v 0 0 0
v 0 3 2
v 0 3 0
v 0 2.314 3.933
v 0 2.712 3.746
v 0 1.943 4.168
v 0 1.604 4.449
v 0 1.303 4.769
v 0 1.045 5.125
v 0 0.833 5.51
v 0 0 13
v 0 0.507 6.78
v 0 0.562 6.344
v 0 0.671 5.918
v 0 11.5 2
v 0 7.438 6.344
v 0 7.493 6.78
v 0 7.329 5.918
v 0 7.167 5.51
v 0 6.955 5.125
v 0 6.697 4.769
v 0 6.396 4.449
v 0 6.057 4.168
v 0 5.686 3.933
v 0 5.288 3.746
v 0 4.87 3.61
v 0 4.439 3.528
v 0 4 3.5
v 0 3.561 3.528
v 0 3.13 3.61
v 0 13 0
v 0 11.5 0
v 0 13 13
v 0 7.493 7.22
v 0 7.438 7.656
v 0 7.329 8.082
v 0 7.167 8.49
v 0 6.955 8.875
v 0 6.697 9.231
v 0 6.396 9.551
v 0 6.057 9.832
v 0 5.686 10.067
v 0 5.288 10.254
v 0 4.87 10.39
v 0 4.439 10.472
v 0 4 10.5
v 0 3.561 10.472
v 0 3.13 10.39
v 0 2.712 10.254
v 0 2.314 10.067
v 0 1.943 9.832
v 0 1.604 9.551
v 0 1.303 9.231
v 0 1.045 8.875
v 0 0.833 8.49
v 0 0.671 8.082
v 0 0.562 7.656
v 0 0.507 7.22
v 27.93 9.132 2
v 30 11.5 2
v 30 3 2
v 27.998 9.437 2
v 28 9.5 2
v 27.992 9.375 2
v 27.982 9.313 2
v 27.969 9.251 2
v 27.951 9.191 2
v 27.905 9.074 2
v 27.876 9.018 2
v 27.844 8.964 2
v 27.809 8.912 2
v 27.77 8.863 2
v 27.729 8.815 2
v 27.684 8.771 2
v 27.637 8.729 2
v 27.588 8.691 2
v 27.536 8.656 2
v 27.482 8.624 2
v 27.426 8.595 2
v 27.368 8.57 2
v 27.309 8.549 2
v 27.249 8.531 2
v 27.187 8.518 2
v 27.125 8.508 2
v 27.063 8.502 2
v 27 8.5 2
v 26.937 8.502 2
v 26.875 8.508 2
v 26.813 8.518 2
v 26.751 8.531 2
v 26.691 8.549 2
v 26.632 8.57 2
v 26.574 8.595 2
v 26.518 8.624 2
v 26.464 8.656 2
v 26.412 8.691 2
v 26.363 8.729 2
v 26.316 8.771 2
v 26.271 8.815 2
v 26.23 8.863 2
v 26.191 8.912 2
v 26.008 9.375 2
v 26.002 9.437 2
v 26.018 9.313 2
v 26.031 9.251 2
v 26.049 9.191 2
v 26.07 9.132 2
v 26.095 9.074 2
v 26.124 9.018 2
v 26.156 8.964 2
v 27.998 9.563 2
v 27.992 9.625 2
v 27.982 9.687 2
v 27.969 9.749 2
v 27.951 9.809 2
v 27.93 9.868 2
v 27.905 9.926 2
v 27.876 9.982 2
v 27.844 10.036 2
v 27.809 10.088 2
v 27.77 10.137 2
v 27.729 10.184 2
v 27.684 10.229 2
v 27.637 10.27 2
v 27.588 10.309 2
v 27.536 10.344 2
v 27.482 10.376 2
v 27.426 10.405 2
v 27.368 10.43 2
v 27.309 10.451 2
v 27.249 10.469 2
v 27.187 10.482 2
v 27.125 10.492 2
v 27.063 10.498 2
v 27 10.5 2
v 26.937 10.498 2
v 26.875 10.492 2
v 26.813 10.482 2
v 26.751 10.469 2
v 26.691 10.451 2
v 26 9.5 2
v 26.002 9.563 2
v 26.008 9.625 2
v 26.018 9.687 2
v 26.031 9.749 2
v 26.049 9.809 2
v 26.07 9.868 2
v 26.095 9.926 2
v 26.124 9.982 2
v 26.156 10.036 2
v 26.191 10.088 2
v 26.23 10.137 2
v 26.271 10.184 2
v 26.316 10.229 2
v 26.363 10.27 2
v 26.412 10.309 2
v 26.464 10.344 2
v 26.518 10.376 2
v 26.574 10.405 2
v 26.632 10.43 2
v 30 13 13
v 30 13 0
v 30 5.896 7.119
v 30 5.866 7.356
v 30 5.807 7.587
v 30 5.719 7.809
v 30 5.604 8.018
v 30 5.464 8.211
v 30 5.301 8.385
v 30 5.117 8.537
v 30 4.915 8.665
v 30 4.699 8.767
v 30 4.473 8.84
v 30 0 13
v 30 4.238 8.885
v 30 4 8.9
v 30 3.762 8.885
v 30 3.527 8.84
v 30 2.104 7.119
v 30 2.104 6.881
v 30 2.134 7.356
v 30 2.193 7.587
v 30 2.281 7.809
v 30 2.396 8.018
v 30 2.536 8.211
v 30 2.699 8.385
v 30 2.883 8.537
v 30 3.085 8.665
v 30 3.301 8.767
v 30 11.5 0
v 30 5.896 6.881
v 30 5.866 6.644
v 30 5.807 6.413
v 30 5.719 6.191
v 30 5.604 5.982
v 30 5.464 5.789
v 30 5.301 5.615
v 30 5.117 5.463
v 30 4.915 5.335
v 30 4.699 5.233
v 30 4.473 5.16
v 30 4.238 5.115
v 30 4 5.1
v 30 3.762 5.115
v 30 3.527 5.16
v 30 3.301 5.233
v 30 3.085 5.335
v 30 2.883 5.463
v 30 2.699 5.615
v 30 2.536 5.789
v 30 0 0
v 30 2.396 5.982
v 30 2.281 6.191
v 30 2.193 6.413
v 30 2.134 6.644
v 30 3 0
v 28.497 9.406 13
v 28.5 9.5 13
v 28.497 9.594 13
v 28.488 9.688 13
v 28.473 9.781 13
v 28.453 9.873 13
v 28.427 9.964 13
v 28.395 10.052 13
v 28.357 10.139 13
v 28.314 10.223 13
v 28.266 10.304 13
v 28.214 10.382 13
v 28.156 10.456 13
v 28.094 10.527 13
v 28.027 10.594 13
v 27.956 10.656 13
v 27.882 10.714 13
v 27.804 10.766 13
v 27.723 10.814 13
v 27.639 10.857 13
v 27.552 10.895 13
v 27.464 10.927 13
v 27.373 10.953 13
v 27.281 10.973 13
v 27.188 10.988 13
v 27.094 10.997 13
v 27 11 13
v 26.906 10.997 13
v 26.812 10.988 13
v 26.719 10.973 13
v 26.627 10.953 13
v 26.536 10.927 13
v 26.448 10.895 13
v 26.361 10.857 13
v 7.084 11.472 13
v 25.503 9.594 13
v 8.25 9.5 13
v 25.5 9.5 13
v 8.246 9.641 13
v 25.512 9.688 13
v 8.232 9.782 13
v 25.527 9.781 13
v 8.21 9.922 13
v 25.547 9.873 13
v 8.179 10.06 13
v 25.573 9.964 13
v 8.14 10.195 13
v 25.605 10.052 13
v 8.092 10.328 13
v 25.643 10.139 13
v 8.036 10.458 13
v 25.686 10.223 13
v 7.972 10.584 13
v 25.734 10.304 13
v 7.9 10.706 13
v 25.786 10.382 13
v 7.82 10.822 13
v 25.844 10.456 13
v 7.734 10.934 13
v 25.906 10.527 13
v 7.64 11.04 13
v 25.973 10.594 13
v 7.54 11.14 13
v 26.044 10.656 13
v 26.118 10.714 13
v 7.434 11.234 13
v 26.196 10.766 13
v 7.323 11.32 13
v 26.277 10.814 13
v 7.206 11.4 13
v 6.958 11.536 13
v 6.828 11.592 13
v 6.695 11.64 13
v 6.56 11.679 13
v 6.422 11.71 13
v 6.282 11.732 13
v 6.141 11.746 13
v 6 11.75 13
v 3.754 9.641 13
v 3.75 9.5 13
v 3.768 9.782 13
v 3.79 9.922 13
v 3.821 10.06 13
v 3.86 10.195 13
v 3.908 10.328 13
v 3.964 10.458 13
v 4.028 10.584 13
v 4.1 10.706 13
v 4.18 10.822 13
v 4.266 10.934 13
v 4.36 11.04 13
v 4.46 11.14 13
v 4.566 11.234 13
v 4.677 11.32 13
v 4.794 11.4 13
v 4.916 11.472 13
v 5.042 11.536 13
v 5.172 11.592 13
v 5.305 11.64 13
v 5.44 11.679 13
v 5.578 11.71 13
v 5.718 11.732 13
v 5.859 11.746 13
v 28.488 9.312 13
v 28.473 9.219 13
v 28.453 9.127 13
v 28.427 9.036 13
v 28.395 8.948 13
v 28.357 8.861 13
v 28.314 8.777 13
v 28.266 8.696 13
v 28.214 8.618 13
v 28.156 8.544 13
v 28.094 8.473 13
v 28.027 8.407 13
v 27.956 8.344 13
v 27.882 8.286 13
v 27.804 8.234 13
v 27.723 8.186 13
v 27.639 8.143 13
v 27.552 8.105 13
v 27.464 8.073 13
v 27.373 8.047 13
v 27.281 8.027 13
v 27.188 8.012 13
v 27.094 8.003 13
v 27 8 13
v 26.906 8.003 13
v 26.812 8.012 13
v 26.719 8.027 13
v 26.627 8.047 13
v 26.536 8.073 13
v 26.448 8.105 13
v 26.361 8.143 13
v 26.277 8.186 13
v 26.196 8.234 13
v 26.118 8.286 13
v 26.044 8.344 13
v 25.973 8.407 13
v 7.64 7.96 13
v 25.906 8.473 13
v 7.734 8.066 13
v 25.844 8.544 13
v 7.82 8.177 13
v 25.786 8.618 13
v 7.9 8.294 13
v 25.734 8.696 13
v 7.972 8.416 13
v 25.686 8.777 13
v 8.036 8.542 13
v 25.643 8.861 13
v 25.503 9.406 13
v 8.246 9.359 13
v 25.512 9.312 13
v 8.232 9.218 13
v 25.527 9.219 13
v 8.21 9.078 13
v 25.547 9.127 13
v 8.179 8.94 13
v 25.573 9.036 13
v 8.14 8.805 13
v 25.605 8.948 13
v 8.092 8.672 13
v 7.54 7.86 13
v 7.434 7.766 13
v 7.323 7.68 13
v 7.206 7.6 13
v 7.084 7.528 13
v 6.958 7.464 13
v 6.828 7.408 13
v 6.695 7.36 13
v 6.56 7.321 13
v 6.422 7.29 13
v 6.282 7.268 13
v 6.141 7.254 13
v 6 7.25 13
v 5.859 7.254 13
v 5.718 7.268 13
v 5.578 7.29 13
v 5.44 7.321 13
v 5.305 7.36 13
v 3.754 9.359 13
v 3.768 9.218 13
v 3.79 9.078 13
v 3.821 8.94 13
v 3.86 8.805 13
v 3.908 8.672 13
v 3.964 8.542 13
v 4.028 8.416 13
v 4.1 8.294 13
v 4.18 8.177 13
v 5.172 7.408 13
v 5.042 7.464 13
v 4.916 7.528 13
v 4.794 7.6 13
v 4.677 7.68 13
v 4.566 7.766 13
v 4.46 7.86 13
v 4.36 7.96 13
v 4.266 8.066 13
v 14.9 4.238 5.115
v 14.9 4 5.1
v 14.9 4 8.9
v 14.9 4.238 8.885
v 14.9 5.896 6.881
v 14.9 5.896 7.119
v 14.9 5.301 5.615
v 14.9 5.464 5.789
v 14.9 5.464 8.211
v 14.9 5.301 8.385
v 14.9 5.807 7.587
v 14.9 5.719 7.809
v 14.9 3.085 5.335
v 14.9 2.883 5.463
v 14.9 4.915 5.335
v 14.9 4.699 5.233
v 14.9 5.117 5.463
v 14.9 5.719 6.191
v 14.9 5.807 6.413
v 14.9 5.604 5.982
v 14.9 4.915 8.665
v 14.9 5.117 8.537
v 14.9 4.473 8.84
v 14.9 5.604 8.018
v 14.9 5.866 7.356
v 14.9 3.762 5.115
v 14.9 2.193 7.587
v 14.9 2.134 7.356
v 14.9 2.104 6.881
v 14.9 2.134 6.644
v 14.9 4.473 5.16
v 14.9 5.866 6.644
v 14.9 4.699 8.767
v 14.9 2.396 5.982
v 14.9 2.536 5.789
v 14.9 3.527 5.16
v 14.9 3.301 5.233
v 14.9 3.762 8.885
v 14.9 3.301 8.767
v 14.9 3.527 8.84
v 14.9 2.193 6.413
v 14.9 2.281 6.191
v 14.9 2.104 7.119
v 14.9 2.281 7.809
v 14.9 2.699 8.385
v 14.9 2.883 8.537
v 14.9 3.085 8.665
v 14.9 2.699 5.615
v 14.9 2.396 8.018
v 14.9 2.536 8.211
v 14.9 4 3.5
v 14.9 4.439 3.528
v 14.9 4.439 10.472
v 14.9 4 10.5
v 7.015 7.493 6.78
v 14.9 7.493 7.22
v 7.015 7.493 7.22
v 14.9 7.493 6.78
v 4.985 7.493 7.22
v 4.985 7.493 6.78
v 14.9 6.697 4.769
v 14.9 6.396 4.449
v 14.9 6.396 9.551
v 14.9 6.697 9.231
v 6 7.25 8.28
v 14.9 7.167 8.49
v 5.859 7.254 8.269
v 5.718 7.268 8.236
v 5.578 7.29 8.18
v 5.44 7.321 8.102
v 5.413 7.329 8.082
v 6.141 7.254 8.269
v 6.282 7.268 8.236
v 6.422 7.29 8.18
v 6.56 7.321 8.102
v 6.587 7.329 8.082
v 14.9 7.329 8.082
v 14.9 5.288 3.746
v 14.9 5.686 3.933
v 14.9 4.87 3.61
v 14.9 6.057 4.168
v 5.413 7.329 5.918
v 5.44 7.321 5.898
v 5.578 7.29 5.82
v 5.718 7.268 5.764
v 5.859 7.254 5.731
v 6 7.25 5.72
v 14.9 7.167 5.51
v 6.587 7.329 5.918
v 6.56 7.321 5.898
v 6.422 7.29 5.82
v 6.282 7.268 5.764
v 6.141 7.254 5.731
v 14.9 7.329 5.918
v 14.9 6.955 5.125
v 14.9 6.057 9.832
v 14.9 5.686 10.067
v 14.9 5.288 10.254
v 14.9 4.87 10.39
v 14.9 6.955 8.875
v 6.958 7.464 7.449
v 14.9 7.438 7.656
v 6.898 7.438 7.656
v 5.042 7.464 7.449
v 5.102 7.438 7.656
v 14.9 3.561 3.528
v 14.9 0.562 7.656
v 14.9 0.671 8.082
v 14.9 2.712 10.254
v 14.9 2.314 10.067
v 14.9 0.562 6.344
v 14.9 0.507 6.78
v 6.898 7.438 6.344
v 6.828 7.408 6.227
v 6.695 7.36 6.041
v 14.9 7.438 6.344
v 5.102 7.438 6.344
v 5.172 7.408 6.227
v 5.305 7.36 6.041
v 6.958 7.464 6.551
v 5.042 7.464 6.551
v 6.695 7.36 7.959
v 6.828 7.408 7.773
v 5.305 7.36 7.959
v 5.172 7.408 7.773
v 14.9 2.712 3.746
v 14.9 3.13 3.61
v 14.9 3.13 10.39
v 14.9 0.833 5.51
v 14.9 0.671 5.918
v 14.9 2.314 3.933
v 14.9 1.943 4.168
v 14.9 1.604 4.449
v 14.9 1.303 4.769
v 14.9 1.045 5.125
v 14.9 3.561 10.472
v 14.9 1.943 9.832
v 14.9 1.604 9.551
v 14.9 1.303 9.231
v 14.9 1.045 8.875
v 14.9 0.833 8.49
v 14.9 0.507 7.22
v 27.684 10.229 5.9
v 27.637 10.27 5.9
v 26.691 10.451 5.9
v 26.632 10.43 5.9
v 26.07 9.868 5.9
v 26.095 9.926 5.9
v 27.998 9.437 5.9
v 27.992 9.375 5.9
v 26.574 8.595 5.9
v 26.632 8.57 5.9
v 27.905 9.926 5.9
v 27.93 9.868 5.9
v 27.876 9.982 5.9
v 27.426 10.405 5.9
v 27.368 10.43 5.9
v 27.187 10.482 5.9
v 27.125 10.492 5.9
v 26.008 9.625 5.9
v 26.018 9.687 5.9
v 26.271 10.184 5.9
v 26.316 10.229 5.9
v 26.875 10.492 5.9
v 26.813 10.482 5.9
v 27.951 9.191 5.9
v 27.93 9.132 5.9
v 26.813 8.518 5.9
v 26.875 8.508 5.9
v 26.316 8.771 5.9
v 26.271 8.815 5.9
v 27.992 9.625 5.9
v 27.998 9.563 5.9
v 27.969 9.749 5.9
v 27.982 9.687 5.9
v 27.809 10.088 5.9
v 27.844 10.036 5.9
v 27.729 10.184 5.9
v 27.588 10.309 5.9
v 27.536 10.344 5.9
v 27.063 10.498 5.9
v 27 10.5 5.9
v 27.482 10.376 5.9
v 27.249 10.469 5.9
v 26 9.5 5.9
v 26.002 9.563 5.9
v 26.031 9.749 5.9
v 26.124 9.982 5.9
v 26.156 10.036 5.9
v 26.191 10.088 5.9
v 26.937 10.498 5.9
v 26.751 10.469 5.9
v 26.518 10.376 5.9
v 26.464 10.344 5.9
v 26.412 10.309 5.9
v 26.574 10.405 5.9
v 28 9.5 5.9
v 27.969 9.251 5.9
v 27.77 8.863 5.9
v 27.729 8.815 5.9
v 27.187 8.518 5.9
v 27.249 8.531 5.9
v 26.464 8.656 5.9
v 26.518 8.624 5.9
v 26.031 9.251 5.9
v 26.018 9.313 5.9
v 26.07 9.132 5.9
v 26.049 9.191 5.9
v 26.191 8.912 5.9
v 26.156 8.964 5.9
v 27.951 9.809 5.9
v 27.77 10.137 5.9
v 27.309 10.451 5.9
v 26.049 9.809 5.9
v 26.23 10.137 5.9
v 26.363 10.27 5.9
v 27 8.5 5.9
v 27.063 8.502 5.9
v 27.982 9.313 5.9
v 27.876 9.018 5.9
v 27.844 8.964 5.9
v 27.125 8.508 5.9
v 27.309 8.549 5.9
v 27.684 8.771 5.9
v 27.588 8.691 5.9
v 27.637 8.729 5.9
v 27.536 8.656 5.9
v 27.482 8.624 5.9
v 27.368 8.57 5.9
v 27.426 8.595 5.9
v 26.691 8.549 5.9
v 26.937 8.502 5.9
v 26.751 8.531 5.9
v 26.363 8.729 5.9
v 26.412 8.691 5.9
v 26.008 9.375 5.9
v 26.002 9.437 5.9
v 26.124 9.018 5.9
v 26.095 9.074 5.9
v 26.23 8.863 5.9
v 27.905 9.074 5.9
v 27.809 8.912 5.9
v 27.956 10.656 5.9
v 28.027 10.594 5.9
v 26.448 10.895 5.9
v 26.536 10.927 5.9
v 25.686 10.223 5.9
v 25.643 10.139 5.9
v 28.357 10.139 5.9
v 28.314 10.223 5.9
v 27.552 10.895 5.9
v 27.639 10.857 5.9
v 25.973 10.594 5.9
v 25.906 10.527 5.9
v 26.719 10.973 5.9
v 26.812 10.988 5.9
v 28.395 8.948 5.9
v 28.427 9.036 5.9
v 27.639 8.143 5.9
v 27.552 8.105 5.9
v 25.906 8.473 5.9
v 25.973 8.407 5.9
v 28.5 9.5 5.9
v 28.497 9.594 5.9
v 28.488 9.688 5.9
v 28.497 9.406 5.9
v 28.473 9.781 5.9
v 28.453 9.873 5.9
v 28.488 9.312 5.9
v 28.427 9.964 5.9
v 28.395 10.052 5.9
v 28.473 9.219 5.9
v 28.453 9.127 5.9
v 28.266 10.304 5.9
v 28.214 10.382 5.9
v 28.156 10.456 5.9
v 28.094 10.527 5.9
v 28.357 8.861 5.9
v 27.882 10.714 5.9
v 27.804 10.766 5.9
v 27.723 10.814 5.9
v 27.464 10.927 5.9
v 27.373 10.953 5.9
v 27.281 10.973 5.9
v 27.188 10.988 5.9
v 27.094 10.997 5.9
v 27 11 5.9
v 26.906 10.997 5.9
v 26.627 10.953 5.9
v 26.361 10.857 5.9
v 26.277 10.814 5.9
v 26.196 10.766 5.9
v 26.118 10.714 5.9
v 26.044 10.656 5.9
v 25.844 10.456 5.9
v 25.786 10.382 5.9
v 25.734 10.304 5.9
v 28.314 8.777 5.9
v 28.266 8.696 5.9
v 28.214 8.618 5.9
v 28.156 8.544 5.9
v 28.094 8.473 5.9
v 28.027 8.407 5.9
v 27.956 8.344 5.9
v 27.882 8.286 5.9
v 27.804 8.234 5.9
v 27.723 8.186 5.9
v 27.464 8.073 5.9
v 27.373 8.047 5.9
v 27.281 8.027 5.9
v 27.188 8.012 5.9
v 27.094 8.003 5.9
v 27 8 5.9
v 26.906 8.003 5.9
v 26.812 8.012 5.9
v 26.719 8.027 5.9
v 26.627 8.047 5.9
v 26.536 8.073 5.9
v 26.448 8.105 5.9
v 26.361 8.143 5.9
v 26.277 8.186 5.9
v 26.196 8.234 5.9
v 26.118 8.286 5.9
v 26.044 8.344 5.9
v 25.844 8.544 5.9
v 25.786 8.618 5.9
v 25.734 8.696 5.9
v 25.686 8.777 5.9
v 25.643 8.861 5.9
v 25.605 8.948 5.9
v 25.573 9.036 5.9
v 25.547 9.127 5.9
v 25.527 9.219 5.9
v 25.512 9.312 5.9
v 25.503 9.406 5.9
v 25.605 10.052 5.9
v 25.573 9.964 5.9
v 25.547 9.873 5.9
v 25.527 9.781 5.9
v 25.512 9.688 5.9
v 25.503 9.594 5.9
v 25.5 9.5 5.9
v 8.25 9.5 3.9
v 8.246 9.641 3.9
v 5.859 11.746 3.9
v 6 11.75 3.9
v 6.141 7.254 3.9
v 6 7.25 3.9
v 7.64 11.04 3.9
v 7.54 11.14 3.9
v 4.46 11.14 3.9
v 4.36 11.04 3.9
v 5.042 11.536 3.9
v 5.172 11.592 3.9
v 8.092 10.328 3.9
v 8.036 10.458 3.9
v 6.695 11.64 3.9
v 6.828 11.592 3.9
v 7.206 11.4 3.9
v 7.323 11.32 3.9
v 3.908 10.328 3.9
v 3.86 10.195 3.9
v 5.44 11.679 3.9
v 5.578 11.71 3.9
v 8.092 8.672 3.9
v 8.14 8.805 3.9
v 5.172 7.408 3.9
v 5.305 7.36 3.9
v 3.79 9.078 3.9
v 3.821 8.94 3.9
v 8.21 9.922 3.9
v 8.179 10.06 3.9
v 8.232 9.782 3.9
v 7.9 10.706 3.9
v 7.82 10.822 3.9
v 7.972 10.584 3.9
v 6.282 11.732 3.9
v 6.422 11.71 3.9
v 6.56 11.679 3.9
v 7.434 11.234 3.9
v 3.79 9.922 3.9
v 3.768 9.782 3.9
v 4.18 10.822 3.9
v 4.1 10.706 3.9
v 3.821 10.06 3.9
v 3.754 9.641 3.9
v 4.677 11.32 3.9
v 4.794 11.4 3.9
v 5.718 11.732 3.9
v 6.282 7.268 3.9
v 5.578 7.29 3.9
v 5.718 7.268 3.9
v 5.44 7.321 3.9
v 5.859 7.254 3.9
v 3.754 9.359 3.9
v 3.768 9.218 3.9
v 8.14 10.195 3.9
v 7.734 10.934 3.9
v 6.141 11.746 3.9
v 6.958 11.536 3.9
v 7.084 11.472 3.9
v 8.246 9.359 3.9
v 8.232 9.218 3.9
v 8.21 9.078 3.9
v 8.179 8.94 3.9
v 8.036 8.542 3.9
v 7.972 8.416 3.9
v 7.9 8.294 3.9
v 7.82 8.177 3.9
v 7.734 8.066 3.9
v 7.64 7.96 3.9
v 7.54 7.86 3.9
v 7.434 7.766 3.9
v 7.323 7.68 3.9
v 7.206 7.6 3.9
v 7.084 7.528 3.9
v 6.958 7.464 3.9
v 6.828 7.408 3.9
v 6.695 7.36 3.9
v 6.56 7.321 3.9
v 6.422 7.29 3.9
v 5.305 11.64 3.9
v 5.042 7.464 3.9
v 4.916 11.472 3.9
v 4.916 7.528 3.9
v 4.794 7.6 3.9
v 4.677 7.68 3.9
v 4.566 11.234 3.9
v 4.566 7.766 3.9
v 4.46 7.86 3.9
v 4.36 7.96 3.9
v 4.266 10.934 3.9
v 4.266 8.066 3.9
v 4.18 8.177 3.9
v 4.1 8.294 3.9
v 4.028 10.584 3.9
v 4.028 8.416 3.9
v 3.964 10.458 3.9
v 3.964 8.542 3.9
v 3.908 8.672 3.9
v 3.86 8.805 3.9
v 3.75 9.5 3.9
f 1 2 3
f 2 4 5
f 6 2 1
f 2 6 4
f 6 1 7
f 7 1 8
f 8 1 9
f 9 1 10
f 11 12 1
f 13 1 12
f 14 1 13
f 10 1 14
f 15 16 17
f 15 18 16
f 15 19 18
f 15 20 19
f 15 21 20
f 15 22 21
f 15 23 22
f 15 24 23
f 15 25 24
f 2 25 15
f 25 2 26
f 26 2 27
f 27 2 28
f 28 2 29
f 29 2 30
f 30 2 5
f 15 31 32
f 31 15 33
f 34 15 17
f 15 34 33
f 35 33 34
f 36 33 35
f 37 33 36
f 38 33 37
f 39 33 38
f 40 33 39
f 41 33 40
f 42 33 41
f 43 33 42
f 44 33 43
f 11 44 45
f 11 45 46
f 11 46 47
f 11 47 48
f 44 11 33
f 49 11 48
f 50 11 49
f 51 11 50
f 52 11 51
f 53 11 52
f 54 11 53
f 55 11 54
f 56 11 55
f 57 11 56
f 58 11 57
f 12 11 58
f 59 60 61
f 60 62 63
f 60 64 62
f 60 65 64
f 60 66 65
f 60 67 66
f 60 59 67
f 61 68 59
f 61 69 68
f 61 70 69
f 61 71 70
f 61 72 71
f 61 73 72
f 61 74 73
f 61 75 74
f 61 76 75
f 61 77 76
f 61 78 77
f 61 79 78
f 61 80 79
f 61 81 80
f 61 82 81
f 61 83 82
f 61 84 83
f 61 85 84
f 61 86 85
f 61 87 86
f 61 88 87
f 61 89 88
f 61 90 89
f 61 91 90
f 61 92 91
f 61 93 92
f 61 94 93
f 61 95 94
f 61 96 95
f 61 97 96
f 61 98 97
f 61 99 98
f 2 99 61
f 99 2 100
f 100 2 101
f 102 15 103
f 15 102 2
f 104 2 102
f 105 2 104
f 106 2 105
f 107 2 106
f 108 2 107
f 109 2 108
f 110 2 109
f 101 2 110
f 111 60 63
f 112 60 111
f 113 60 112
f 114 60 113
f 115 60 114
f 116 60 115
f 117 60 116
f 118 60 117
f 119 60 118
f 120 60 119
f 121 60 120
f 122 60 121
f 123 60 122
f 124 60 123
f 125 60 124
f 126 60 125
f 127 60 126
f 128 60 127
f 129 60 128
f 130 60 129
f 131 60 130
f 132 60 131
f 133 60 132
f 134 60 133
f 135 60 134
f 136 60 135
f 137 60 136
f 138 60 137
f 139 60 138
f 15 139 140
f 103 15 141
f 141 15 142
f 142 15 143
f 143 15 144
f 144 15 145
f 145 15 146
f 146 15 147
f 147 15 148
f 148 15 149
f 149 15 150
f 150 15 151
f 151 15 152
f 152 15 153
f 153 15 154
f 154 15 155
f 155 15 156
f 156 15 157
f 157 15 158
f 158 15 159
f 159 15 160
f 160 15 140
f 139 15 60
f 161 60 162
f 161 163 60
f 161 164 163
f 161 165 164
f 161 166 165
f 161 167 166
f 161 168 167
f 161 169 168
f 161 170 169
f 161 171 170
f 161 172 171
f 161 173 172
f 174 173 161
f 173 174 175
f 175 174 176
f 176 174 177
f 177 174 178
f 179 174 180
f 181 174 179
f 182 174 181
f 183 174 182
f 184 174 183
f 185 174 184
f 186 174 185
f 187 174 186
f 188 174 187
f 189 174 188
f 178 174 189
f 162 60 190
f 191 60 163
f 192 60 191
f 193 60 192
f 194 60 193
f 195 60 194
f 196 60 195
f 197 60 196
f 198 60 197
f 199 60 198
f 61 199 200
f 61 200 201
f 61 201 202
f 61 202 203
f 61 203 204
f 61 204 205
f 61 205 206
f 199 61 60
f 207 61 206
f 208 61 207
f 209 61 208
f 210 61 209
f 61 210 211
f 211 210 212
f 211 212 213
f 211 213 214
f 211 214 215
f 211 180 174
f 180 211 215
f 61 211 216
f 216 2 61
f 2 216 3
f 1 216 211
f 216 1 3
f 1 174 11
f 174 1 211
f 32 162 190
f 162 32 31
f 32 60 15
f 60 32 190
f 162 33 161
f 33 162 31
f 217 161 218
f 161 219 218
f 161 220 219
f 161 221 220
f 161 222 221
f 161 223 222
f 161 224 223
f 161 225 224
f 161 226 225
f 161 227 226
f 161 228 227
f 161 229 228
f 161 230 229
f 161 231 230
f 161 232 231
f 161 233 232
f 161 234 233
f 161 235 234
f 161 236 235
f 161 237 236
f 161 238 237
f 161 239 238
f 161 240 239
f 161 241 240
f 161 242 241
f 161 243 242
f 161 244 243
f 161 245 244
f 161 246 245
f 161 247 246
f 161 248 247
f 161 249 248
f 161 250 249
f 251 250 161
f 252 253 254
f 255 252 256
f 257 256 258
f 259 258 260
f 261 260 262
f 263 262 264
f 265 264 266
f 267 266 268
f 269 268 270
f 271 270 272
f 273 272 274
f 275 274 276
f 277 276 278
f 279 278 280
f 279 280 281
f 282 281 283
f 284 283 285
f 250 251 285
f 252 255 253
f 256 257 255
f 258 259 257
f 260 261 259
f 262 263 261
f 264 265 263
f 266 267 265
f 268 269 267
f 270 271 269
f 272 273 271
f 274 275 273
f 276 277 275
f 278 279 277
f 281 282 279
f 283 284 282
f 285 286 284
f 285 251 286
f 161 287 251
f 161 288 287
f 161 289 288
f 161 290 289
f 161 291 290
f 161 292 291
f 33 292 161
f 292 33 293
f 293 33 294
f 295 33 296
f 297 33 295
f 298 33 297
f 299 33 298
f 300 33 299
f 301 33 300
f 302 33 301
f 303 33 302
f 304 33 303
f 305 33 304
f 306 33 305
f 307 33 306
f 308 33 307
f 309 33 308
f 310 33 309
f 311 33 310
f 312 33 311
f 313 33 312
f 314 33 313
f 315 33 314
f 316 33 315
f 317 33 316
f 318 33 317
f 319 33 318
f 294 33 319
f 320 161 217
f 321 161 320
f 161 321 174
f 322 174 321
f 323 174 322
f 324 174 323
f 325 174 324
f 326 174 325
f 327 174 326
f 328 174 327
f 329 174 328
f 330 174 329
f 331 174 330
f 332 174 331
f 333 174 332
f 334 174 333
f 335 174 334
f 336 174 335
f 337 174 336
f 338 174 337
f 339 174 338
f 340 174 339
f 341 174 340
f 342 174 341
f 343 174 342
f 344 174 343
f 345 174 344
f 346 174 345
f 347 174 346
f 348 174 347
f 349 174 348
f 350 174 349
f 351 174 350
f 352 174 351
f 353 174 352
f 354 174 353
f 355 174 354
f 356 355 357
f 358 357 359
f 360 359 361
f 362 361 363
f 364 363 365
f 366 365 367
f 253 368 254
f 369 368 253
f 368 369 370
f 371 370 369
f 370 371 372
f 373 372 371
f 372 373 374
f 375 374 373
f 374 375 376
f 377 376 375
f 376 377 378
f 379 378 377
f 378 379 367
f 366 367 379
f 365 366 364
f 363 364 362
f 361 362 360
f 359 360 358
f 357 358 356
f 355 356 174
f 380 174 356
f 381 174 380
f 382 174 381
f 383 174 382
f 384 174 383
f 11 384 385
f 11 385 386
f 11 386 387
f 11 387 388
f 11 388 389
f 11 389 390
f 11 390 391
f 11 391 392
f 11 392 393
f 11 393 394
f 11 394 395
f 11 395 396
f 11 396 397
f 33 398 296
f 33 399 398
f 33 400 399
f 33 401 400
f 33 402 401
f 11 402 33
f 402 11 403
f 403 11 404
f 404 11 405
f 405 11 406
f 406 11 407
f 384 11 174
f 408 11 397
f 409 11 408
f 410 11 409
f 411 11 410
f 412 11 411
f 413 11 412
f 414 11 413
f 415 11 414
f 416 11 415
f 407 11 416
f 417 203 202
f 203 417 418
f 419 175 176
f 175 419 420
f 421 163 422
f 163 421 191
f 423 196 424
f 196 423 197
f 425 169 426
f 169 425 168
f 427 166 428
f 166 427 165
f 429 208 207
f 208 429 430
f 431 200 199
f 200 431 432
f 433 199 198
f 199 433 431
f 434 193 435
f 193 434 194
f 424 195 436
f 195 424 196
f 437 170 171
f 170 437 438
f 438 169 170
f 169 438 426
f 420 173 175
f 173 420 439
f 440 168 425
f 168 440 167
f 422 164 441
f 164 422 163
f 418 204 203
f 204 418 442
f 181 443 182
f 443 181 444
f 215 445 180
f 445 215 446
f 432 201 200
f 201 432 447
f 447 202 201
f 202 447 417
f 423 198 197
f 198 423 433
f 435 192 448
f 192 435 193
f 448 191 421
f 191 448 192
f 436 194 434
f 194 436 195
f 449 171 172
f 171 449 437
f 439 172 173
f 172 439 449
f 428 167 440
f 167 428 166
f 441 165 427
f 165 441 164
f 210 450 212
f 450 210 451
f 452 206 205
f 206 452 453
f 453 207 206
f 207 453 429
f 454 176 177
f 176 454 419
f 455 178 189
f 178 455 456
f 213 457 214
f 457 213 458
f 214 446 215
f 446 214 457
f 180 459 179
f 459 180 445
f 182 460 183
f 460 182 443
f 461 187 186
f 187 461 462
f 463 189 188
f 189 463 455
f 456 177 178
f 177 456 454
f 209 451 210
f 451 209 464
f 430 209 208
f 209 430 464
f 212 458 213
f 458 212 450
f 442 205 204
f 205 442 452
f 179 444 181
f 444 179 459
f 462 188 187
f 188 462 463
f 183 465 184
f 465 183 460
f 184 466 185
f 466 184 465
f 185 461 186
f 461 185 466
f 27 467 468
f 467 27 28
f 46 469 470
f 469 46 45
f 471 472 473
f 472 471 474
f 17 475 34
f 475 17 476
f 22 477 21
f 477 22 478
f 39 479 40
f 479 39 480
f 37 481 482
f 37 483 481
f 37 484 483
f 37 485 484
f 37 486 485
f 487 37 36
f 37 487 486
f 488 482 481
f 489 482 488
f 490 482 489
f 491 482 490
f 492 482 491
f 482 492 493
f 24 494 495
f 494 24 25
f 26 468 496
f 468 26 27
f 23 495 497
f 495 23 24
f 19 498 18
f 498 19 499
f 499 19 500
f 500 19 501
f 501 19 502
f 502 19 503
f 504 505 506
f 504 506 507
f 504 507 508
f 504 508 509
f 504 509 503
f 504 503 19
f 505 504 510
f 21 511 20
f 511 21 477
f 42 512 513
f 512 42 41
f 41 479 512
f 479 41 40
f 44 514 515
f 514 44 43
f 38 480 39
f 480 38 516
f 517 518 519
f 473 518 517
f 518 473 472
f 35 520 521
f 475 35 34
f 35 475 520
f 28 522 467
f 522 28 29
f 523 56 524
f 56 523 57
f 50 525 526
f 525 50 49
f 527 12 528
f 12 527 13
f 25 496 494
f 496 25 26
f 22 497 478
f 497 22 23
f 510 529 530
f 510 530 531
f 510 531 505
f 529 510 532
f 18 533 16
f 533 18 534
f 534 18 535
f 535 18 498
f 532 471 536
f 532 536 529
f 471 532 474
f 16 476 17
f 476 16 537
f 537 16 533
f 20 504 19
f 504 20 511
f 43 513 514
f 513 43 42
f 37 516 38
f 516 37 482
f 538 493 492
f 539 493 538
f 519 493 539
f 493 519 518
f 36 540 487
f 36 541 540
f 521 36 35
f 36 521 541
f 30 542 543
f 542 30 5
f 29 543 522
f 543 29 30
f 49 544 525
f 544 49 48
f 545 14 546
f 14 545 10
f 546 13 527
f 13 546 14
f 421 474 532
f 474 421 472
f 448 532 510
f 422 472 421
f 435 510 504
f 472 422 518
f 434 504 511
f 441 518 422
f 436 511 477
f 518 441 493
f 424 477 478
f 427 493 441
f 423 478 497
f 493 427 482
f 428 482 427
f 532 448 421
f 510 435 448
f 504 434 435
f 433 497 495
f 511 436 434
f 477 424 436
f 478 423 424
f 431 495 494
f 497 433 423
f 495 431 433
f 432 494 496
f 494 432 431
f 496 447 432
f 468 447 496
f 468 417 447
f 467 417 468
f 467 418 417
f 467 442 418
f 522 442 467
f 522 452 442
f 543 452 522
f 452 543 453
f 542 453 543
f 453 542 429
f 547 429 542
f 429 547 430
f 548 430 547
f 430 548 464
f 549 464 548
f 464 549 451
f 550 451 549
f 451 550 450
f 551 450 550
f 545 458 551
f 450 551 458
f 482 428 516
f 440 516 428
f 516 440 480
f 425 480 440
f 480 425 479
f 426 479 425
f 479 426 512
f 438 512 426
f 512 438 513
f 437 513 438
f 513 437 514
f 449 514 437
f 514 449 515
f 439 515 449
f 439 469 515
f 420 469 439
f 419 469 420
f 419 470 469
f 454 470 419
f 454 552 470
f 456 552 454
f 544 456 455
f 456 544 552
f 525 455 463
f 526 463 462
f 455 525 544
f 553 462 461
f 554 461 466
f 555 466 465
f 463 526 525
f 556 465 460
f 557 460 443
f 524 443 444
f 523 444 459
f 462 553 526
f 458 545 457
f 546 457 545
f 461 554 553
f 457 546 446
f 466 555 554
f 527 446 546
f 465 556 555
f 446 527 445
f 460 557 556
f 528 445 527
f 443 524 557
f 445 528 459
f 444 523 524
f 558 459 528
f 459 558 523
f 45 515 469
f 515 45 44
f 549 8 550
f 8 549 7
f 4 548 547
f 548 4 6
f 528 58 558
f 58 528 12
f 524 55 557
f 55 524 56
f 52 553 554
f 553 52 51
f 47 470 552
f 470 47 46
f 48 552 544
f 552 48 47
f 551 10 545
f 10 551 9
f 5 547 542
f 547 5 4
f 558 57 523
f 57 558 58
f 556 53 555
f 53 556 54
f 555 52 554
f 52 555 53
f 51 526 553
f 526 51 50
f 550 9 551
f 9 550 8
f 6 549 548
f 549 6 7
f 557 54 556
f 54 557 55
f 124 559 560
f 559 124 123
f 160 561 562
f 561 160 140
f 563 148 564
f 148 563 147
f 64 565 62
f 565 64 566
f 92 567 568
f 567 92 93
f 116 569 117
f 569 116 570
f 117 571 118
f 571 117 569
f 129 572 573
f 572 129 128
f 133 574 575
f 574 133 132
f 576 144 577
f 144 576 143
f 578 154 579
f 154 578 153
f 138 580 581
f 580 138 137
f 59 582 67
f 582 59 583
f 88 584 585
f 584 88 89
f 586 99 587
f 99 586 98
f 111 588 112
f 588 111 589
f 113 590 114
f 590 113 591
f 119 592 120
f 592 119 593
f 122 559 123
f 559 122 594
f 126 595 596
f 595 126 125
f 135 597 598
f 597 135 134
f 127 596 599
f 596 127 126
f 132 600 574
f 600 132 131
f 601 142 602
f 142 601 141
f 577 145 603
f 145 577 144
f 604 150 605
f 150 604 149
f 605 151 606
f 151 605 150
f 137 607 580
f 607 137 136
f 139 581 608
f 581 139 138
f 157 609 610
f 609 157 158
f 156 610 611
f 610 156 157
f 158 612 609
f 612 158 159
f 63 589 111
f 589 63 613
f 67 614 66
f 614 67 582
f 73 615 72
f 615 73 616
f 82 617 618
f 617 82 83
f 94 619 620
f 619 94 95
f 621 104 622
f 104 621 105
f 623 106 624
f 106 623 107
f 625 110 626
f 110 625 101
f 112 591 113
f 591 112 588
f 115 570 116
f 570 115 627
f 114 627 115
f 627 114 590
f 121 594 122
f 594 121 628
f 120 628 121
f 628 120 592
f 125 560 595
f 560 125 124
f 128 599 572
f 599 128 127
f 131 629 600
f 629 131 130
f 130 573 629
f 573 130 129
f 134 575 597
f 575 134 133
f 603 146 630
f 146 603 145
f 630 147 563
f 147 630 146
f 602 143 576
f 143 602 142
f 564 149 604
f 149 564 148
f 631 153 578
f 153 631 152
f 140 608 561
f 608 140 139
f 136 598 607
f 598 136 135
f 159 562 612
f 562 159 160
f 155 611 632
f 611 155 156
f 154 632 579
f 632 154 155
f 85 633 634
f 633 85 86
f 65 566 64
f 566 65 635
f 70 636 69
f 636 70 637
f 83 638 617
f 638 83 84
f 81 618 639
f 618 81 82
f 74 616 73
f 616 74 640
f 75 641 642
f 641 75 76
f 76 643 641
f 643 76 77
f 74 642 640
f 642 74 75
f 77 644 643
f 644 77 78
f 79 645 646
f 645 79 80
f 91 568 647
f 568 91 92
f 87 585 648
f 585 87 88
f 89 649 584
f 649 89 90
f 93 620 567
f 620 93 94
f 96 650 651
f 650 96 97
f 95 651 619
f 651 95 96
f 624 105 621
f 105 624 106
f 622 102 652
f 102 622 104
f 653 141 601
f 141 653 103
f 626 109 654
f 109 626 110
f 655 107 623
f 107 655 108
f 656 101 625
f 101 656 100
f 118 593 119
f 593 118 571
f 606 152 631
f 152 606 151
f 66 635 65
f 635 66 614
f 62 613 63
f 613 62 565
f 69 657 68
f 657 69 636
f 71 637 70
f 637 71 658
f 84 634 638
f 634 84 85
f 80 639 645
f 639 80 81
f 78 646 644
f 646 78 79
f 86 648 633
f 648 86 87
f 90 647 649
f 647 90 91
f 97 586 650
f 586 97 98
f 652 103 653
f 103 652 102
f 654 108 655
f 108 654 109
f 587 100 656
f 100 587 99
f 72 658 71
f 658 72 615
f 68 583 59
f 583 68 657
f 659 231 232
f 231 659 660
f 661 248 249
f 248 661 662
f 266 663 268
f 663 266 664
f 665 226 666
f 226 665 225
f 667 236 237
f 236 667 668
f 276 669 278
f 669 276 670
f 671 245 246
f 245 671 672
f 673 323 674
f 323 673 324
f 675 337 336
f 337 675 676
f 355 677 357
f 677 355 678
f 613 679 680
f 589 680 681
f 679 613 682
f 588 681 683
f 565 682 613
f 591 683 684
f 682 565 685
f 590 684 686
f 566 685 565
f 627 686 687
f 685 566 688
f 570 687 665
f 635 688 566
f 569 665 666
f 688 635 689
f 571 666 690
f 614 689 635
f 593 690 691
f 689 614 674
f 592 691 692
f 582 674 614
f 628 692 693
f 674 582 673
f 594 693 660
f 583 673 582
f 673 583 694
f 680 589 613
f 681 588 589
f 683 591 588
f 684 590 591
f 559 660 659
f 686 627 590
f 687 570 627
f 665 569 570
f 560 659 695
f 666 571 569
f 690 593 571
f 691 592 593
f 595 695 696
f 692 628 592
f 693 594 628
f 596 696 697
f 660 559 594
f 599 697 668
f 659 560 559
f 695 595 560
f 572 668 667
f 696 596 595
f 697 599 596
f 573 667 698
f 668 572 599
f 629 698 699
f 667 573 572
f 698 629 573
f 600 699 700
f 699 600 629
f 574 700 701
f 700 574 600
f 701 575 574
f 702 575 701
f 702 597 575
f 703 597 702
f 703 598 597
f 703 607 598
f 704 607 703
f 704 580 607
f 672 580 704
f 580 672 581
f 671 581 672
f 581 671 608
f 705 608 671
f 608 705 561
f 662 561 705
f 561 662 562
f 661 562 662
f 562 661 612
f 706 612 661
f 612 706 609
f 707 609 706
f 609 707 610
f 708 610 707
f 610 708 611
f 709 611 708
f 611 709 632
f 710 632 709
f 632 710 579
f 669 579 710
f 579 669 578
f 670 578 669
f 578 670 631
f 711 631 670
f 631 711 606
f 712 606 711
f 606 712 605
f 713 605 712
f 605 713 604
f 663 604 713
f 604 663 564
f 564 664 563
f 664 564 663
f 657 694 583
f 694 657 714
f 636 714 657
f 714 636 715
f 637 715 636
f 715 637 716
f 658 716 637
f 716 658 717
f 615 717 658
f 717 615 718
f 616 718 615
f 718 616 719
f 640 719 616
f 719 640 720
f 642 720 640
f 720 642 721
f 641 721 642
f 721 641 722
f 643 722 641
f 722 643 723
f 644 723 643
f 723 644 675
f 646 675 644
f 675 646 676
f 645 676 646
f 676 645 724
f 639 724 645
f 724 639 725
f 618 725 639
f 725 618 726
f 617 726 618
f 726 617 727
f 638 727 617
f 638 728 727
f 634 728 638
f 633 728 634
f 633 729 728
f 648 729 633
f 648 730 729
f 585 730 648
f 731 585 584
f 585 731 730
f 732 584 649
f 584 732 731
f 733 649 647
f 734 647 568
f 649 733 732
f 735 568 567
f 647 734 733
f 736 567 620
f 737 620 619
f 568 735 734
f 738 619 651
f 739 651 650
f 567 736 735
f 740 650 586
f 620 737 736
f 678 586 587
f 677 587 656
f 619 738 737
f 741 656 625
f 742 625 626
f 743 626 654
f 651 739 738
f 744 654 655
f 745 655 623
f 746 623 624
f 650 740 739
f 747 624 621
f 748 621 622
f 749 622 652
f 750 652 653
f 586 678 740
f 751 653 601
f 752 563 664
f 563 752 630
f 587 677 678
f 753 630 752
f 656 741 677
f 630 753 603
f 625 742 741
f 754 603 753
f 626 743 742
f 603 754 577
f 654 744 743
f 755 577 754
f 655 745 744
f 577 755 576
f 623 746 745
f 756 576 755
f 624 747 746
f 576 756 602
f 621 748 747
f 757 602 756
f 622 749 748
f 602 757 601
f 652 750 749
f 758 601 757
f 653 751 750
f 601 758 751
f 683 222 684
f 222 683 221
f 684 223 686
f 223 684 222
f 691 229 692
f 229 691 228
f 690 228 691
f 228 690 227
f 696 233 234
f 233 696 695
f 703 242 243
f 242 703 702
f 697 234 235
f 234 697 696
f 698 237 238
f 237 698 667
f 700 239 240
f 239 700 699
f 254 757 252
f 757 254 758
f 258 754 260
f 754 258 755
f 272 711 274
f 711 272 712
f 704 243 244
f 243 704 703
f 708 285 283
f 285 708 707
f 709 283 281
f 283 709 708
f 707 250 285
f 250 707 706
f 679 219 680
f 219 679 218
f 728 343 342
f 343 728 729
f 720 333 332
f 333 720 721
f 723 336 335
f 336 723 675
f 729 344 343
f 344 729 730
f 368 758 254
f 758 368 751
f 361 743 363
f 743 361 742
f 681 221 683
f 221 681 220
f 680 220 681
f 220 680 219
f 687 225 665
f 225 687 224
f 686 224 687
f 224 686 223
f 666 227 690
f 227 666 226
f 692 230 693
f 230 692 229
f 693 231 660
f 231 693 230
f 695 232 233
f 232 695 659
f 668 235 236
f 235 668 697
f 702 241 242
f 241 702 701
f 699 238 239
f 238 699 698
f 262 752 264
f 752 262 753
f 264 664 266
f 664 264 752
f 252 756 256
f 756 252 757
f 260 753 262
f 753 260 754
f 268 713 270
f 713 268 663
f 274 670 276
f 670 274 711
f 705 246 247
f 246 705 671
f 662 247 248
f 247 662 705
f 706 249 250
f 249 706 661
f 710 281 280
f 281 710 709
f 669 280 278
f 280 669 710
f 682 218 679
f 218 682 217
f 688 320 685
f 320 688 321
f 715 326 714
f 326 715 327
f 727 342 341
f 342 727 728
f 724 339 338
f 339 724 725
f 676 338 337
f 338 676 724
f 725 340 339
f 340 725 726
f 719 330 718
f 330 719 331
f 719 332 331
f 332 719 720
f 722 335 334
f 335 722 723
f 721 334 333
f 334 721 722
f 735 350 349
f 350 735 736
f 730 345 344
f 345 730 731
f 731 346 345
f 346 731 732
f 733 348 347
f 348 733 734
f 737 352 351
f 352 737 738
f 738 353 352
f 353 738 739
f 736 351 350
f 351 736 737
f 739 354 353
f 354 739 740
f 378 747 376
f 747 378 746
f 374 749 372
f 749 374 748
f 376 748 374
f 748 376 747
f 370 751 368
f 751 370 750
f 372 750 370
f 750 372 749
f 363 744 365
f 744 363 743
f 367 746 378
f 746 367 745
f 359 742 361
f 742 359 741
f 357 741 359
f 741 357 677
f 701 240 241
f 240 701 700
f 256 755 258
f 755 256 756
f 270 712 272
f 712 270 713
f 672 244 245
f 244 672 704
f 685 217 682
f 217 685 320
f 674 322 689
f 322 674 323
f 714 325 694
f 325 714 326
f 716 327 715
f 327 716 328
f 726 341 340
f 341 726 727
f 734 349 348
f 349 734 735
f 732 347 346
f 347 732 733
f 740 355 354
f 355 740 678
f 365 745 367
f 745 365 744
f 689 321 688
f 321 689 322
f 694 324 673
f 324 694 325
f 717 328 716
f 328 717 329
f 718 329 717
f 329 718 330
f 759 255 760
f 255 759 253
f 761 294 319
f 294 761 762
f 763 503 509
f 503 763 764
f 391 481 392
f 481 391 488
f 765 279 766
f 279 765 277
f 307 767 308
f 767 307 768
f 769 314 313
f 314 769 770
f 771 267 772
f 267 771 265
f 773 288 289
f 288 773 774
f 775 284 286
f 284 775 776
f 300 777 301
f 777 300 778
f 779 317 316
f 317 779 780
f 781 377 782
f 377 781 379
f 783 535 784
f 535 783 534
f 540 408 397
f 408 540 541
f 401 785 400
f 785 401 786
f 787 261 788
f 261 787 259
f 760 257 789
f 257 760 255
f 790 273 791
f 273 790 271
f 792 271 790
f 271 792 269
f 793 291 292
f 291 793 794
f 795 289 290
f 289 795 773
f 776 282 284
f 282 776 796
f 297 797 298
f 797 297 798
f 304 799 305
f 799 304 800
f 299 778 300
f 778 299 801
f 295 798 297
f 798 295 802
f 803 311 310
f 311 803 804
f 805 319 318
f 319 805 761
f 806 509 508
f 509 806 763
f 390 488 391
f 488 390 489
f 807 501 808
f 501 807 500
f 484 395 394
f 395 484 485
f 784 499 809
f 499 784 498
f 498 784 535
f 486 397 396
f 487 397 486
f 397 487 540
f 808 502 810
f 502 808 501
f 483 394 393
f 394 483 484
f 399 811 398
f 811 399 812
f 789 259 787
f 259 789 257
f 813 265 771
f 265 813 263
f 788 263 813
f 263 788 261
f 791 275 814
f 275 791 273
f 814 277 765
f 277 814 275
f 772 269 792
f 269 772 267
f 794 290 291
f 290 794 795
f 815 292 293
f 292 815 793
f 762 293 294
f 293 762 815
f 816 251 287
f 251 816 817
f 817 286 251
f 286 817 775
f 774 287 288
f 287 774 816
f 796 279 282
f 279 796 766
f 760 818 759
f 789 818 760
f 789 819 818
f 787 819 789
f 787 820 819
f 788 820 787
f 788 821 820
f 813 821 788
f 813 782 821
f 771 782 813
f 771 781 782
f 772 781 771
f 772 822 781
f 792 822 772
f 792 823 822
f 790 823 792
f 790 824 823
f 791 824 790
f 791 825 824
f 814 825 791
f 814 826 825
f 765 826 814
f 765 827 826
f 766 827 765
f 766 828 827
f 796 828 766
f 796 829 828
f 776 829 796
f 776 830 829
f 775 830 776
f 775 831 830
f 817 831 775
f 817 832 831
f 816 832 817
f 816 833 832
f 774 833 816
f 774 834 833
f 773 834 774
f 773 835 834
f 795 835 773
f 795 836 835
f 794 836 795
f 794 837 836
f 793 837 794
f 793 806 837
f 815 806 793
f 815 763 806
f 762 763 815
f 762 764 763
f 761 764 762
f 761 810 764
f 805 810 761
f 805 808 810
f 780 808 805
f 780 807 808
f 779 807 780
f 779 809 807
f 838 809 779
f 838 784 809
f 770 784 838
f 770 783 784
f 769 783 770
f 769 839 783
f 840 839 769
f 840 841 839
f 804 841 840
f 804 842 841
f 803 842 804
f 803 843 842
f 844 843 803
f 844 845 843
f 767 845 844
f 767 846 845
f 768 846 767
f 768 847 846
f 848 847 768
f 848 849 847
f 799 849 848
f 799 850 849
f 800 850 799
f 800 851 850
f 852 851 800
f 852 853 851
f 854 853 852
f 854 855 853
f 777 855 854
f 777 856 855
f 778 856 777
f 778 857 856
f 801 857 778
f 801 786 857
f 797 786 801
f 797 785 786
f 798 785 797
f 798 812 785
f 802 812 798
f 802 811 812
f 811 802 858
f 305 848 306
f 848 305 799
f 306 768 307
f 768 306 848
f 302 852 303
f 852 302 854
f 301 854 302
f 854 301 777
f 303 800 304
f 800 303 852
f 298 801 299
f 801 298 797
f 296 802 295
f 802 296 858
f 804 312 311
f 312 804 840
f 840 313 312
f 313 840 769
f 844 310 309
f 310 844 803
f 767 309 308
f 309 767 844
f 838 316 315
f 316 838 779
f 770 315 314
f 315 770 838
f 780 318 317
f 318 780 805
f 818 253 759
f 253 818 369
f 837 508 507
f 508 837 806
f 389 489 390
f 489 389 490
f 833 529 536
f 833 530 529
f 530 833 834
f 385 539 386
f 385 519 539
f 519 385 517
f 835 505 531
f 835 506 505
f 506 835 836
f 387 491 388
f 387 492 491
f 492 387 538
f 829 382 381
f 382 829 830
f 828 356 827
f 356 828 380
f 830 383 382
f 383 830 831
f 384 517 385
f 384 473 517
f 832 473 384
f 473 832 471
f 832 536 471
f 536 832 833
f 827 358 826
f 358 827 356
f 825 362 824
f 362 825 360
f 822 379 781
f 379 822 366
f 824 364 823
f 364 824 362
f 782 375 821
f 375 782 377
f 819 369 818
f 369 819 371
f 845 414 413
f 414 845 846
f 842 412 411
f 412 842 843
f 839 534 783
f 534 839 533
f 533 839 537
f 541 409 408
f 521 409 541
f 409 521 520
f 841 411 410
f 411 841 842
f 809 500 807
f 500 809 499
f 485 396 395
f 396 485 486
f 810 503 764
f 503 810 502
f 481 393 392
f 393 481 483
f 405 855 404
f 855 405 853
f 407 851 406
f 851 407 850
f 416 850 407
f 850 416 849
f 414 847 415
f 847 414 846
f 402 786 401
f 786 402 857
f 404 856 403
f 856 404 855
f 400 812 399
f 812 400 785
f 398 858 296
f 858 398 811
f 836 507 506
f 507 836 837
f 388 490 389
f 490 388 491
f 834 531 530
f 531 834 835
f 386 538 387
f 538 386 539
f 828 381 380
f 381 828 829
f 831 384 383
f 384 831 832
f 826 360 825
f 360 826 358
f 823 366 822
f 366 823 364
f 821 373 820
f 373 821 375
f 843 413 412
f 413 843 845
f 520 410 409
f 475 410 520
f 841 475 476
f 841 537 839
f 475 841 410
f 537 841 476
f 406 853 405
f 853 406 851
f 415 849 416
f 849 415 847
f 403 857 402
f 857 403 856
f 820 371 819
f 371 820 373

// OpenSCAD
$fn = 100;

// Height between base and wrapper.
smdTapeGap = 2;
// gap for the film to wrap back around
smtTapeTopGap = 1; 
// How far from the edige the hole in the tap is.
tapeHoleOffset = 2; // mm
// How big or small of a hole to make for the light to come through
// This is printed on its side so allow for printer filament to run in.
tapeHoleSize = 2; // mm - hole side to use for the tape hole light.
// How far before the main block the hole for tape sensing should be.
tapeHoleOffsetFromBlock = 3;

// How thick the back (well side) support structure is
// the tape sits against this.
backerWidth = 1.5; // Was 2.
// 8mm tape + backer = 9.5mm, 
// 13mm block -> 3.5mm play on the left.
// 12mm tape + backer = 13.5 >> block width

// How wide the thing is.
blockWidth = 13;

// How much space to allow for the tape.
tapeWidth = 8.5;

// This should match the roll over block height
// in the main dispenser but allow 1.6mm for a PCB to be mounted on top.
bodyHeight = 11;

// How long on the x axis this is.
length = 30;


module addRails() {
    translate([0,0,0]) {
        cube([length, blockWidth - (backerWidth + tapeWidth),smdTapeGap]);

        translate([0,blockWidth -backerWidth ,0]) {
            cube([length, backerWidth,smdTapeGap]);
        }
    }
}
    
    
module mountingHole() {
    translate([-0.1, 4, 10/2 + smdTapeGap ]) {
        rotate([0,90,0]) {
            // Component counter mount hole
            #cylinder(d=3.8, h=length+0.2, $fn=50);
            // Screw head sink in.
            #cylinder(d=7, h=length-15, $fn=50);
        }
    }
}
module lightSensorHole() {
    translate([length - tapeHoleOffsetFromBlock,blockWidth - backerWidth - tapeHoleOffset ,-0.1]) {
        // Small hole all the way up
        cylinder(d=2, h=bodyHeight + smdTapeGap + 0.2);
        // Bigger hole at top for the sensor.
        translate([0,0,6]) {
            cylinder(d=3, h=bodyHeight + smdTapeGap + 0.2);
        }
    }
}

module pcbMountingHome() {
    translate([6,blockWidth - backerWidth - tapeHoleOffset ,-0.1]) {
        translate([0,0,4]) {
            #cylinder(d=4.5, h=bodyHeight + smdTapeGap + 0.2);
        }
    }
}


    
difference() {
    union() {
        // rails for the tape to run through
        addRails();
        
        // Main block body.
        translate([0,0,smdTapeGap]) {
            cube([length,blockWidth,bodyHeight]);
        }
    }
    union() {
        mountingHole();
        lightSensorHole();
        pcbMountingHome();
    }
}
